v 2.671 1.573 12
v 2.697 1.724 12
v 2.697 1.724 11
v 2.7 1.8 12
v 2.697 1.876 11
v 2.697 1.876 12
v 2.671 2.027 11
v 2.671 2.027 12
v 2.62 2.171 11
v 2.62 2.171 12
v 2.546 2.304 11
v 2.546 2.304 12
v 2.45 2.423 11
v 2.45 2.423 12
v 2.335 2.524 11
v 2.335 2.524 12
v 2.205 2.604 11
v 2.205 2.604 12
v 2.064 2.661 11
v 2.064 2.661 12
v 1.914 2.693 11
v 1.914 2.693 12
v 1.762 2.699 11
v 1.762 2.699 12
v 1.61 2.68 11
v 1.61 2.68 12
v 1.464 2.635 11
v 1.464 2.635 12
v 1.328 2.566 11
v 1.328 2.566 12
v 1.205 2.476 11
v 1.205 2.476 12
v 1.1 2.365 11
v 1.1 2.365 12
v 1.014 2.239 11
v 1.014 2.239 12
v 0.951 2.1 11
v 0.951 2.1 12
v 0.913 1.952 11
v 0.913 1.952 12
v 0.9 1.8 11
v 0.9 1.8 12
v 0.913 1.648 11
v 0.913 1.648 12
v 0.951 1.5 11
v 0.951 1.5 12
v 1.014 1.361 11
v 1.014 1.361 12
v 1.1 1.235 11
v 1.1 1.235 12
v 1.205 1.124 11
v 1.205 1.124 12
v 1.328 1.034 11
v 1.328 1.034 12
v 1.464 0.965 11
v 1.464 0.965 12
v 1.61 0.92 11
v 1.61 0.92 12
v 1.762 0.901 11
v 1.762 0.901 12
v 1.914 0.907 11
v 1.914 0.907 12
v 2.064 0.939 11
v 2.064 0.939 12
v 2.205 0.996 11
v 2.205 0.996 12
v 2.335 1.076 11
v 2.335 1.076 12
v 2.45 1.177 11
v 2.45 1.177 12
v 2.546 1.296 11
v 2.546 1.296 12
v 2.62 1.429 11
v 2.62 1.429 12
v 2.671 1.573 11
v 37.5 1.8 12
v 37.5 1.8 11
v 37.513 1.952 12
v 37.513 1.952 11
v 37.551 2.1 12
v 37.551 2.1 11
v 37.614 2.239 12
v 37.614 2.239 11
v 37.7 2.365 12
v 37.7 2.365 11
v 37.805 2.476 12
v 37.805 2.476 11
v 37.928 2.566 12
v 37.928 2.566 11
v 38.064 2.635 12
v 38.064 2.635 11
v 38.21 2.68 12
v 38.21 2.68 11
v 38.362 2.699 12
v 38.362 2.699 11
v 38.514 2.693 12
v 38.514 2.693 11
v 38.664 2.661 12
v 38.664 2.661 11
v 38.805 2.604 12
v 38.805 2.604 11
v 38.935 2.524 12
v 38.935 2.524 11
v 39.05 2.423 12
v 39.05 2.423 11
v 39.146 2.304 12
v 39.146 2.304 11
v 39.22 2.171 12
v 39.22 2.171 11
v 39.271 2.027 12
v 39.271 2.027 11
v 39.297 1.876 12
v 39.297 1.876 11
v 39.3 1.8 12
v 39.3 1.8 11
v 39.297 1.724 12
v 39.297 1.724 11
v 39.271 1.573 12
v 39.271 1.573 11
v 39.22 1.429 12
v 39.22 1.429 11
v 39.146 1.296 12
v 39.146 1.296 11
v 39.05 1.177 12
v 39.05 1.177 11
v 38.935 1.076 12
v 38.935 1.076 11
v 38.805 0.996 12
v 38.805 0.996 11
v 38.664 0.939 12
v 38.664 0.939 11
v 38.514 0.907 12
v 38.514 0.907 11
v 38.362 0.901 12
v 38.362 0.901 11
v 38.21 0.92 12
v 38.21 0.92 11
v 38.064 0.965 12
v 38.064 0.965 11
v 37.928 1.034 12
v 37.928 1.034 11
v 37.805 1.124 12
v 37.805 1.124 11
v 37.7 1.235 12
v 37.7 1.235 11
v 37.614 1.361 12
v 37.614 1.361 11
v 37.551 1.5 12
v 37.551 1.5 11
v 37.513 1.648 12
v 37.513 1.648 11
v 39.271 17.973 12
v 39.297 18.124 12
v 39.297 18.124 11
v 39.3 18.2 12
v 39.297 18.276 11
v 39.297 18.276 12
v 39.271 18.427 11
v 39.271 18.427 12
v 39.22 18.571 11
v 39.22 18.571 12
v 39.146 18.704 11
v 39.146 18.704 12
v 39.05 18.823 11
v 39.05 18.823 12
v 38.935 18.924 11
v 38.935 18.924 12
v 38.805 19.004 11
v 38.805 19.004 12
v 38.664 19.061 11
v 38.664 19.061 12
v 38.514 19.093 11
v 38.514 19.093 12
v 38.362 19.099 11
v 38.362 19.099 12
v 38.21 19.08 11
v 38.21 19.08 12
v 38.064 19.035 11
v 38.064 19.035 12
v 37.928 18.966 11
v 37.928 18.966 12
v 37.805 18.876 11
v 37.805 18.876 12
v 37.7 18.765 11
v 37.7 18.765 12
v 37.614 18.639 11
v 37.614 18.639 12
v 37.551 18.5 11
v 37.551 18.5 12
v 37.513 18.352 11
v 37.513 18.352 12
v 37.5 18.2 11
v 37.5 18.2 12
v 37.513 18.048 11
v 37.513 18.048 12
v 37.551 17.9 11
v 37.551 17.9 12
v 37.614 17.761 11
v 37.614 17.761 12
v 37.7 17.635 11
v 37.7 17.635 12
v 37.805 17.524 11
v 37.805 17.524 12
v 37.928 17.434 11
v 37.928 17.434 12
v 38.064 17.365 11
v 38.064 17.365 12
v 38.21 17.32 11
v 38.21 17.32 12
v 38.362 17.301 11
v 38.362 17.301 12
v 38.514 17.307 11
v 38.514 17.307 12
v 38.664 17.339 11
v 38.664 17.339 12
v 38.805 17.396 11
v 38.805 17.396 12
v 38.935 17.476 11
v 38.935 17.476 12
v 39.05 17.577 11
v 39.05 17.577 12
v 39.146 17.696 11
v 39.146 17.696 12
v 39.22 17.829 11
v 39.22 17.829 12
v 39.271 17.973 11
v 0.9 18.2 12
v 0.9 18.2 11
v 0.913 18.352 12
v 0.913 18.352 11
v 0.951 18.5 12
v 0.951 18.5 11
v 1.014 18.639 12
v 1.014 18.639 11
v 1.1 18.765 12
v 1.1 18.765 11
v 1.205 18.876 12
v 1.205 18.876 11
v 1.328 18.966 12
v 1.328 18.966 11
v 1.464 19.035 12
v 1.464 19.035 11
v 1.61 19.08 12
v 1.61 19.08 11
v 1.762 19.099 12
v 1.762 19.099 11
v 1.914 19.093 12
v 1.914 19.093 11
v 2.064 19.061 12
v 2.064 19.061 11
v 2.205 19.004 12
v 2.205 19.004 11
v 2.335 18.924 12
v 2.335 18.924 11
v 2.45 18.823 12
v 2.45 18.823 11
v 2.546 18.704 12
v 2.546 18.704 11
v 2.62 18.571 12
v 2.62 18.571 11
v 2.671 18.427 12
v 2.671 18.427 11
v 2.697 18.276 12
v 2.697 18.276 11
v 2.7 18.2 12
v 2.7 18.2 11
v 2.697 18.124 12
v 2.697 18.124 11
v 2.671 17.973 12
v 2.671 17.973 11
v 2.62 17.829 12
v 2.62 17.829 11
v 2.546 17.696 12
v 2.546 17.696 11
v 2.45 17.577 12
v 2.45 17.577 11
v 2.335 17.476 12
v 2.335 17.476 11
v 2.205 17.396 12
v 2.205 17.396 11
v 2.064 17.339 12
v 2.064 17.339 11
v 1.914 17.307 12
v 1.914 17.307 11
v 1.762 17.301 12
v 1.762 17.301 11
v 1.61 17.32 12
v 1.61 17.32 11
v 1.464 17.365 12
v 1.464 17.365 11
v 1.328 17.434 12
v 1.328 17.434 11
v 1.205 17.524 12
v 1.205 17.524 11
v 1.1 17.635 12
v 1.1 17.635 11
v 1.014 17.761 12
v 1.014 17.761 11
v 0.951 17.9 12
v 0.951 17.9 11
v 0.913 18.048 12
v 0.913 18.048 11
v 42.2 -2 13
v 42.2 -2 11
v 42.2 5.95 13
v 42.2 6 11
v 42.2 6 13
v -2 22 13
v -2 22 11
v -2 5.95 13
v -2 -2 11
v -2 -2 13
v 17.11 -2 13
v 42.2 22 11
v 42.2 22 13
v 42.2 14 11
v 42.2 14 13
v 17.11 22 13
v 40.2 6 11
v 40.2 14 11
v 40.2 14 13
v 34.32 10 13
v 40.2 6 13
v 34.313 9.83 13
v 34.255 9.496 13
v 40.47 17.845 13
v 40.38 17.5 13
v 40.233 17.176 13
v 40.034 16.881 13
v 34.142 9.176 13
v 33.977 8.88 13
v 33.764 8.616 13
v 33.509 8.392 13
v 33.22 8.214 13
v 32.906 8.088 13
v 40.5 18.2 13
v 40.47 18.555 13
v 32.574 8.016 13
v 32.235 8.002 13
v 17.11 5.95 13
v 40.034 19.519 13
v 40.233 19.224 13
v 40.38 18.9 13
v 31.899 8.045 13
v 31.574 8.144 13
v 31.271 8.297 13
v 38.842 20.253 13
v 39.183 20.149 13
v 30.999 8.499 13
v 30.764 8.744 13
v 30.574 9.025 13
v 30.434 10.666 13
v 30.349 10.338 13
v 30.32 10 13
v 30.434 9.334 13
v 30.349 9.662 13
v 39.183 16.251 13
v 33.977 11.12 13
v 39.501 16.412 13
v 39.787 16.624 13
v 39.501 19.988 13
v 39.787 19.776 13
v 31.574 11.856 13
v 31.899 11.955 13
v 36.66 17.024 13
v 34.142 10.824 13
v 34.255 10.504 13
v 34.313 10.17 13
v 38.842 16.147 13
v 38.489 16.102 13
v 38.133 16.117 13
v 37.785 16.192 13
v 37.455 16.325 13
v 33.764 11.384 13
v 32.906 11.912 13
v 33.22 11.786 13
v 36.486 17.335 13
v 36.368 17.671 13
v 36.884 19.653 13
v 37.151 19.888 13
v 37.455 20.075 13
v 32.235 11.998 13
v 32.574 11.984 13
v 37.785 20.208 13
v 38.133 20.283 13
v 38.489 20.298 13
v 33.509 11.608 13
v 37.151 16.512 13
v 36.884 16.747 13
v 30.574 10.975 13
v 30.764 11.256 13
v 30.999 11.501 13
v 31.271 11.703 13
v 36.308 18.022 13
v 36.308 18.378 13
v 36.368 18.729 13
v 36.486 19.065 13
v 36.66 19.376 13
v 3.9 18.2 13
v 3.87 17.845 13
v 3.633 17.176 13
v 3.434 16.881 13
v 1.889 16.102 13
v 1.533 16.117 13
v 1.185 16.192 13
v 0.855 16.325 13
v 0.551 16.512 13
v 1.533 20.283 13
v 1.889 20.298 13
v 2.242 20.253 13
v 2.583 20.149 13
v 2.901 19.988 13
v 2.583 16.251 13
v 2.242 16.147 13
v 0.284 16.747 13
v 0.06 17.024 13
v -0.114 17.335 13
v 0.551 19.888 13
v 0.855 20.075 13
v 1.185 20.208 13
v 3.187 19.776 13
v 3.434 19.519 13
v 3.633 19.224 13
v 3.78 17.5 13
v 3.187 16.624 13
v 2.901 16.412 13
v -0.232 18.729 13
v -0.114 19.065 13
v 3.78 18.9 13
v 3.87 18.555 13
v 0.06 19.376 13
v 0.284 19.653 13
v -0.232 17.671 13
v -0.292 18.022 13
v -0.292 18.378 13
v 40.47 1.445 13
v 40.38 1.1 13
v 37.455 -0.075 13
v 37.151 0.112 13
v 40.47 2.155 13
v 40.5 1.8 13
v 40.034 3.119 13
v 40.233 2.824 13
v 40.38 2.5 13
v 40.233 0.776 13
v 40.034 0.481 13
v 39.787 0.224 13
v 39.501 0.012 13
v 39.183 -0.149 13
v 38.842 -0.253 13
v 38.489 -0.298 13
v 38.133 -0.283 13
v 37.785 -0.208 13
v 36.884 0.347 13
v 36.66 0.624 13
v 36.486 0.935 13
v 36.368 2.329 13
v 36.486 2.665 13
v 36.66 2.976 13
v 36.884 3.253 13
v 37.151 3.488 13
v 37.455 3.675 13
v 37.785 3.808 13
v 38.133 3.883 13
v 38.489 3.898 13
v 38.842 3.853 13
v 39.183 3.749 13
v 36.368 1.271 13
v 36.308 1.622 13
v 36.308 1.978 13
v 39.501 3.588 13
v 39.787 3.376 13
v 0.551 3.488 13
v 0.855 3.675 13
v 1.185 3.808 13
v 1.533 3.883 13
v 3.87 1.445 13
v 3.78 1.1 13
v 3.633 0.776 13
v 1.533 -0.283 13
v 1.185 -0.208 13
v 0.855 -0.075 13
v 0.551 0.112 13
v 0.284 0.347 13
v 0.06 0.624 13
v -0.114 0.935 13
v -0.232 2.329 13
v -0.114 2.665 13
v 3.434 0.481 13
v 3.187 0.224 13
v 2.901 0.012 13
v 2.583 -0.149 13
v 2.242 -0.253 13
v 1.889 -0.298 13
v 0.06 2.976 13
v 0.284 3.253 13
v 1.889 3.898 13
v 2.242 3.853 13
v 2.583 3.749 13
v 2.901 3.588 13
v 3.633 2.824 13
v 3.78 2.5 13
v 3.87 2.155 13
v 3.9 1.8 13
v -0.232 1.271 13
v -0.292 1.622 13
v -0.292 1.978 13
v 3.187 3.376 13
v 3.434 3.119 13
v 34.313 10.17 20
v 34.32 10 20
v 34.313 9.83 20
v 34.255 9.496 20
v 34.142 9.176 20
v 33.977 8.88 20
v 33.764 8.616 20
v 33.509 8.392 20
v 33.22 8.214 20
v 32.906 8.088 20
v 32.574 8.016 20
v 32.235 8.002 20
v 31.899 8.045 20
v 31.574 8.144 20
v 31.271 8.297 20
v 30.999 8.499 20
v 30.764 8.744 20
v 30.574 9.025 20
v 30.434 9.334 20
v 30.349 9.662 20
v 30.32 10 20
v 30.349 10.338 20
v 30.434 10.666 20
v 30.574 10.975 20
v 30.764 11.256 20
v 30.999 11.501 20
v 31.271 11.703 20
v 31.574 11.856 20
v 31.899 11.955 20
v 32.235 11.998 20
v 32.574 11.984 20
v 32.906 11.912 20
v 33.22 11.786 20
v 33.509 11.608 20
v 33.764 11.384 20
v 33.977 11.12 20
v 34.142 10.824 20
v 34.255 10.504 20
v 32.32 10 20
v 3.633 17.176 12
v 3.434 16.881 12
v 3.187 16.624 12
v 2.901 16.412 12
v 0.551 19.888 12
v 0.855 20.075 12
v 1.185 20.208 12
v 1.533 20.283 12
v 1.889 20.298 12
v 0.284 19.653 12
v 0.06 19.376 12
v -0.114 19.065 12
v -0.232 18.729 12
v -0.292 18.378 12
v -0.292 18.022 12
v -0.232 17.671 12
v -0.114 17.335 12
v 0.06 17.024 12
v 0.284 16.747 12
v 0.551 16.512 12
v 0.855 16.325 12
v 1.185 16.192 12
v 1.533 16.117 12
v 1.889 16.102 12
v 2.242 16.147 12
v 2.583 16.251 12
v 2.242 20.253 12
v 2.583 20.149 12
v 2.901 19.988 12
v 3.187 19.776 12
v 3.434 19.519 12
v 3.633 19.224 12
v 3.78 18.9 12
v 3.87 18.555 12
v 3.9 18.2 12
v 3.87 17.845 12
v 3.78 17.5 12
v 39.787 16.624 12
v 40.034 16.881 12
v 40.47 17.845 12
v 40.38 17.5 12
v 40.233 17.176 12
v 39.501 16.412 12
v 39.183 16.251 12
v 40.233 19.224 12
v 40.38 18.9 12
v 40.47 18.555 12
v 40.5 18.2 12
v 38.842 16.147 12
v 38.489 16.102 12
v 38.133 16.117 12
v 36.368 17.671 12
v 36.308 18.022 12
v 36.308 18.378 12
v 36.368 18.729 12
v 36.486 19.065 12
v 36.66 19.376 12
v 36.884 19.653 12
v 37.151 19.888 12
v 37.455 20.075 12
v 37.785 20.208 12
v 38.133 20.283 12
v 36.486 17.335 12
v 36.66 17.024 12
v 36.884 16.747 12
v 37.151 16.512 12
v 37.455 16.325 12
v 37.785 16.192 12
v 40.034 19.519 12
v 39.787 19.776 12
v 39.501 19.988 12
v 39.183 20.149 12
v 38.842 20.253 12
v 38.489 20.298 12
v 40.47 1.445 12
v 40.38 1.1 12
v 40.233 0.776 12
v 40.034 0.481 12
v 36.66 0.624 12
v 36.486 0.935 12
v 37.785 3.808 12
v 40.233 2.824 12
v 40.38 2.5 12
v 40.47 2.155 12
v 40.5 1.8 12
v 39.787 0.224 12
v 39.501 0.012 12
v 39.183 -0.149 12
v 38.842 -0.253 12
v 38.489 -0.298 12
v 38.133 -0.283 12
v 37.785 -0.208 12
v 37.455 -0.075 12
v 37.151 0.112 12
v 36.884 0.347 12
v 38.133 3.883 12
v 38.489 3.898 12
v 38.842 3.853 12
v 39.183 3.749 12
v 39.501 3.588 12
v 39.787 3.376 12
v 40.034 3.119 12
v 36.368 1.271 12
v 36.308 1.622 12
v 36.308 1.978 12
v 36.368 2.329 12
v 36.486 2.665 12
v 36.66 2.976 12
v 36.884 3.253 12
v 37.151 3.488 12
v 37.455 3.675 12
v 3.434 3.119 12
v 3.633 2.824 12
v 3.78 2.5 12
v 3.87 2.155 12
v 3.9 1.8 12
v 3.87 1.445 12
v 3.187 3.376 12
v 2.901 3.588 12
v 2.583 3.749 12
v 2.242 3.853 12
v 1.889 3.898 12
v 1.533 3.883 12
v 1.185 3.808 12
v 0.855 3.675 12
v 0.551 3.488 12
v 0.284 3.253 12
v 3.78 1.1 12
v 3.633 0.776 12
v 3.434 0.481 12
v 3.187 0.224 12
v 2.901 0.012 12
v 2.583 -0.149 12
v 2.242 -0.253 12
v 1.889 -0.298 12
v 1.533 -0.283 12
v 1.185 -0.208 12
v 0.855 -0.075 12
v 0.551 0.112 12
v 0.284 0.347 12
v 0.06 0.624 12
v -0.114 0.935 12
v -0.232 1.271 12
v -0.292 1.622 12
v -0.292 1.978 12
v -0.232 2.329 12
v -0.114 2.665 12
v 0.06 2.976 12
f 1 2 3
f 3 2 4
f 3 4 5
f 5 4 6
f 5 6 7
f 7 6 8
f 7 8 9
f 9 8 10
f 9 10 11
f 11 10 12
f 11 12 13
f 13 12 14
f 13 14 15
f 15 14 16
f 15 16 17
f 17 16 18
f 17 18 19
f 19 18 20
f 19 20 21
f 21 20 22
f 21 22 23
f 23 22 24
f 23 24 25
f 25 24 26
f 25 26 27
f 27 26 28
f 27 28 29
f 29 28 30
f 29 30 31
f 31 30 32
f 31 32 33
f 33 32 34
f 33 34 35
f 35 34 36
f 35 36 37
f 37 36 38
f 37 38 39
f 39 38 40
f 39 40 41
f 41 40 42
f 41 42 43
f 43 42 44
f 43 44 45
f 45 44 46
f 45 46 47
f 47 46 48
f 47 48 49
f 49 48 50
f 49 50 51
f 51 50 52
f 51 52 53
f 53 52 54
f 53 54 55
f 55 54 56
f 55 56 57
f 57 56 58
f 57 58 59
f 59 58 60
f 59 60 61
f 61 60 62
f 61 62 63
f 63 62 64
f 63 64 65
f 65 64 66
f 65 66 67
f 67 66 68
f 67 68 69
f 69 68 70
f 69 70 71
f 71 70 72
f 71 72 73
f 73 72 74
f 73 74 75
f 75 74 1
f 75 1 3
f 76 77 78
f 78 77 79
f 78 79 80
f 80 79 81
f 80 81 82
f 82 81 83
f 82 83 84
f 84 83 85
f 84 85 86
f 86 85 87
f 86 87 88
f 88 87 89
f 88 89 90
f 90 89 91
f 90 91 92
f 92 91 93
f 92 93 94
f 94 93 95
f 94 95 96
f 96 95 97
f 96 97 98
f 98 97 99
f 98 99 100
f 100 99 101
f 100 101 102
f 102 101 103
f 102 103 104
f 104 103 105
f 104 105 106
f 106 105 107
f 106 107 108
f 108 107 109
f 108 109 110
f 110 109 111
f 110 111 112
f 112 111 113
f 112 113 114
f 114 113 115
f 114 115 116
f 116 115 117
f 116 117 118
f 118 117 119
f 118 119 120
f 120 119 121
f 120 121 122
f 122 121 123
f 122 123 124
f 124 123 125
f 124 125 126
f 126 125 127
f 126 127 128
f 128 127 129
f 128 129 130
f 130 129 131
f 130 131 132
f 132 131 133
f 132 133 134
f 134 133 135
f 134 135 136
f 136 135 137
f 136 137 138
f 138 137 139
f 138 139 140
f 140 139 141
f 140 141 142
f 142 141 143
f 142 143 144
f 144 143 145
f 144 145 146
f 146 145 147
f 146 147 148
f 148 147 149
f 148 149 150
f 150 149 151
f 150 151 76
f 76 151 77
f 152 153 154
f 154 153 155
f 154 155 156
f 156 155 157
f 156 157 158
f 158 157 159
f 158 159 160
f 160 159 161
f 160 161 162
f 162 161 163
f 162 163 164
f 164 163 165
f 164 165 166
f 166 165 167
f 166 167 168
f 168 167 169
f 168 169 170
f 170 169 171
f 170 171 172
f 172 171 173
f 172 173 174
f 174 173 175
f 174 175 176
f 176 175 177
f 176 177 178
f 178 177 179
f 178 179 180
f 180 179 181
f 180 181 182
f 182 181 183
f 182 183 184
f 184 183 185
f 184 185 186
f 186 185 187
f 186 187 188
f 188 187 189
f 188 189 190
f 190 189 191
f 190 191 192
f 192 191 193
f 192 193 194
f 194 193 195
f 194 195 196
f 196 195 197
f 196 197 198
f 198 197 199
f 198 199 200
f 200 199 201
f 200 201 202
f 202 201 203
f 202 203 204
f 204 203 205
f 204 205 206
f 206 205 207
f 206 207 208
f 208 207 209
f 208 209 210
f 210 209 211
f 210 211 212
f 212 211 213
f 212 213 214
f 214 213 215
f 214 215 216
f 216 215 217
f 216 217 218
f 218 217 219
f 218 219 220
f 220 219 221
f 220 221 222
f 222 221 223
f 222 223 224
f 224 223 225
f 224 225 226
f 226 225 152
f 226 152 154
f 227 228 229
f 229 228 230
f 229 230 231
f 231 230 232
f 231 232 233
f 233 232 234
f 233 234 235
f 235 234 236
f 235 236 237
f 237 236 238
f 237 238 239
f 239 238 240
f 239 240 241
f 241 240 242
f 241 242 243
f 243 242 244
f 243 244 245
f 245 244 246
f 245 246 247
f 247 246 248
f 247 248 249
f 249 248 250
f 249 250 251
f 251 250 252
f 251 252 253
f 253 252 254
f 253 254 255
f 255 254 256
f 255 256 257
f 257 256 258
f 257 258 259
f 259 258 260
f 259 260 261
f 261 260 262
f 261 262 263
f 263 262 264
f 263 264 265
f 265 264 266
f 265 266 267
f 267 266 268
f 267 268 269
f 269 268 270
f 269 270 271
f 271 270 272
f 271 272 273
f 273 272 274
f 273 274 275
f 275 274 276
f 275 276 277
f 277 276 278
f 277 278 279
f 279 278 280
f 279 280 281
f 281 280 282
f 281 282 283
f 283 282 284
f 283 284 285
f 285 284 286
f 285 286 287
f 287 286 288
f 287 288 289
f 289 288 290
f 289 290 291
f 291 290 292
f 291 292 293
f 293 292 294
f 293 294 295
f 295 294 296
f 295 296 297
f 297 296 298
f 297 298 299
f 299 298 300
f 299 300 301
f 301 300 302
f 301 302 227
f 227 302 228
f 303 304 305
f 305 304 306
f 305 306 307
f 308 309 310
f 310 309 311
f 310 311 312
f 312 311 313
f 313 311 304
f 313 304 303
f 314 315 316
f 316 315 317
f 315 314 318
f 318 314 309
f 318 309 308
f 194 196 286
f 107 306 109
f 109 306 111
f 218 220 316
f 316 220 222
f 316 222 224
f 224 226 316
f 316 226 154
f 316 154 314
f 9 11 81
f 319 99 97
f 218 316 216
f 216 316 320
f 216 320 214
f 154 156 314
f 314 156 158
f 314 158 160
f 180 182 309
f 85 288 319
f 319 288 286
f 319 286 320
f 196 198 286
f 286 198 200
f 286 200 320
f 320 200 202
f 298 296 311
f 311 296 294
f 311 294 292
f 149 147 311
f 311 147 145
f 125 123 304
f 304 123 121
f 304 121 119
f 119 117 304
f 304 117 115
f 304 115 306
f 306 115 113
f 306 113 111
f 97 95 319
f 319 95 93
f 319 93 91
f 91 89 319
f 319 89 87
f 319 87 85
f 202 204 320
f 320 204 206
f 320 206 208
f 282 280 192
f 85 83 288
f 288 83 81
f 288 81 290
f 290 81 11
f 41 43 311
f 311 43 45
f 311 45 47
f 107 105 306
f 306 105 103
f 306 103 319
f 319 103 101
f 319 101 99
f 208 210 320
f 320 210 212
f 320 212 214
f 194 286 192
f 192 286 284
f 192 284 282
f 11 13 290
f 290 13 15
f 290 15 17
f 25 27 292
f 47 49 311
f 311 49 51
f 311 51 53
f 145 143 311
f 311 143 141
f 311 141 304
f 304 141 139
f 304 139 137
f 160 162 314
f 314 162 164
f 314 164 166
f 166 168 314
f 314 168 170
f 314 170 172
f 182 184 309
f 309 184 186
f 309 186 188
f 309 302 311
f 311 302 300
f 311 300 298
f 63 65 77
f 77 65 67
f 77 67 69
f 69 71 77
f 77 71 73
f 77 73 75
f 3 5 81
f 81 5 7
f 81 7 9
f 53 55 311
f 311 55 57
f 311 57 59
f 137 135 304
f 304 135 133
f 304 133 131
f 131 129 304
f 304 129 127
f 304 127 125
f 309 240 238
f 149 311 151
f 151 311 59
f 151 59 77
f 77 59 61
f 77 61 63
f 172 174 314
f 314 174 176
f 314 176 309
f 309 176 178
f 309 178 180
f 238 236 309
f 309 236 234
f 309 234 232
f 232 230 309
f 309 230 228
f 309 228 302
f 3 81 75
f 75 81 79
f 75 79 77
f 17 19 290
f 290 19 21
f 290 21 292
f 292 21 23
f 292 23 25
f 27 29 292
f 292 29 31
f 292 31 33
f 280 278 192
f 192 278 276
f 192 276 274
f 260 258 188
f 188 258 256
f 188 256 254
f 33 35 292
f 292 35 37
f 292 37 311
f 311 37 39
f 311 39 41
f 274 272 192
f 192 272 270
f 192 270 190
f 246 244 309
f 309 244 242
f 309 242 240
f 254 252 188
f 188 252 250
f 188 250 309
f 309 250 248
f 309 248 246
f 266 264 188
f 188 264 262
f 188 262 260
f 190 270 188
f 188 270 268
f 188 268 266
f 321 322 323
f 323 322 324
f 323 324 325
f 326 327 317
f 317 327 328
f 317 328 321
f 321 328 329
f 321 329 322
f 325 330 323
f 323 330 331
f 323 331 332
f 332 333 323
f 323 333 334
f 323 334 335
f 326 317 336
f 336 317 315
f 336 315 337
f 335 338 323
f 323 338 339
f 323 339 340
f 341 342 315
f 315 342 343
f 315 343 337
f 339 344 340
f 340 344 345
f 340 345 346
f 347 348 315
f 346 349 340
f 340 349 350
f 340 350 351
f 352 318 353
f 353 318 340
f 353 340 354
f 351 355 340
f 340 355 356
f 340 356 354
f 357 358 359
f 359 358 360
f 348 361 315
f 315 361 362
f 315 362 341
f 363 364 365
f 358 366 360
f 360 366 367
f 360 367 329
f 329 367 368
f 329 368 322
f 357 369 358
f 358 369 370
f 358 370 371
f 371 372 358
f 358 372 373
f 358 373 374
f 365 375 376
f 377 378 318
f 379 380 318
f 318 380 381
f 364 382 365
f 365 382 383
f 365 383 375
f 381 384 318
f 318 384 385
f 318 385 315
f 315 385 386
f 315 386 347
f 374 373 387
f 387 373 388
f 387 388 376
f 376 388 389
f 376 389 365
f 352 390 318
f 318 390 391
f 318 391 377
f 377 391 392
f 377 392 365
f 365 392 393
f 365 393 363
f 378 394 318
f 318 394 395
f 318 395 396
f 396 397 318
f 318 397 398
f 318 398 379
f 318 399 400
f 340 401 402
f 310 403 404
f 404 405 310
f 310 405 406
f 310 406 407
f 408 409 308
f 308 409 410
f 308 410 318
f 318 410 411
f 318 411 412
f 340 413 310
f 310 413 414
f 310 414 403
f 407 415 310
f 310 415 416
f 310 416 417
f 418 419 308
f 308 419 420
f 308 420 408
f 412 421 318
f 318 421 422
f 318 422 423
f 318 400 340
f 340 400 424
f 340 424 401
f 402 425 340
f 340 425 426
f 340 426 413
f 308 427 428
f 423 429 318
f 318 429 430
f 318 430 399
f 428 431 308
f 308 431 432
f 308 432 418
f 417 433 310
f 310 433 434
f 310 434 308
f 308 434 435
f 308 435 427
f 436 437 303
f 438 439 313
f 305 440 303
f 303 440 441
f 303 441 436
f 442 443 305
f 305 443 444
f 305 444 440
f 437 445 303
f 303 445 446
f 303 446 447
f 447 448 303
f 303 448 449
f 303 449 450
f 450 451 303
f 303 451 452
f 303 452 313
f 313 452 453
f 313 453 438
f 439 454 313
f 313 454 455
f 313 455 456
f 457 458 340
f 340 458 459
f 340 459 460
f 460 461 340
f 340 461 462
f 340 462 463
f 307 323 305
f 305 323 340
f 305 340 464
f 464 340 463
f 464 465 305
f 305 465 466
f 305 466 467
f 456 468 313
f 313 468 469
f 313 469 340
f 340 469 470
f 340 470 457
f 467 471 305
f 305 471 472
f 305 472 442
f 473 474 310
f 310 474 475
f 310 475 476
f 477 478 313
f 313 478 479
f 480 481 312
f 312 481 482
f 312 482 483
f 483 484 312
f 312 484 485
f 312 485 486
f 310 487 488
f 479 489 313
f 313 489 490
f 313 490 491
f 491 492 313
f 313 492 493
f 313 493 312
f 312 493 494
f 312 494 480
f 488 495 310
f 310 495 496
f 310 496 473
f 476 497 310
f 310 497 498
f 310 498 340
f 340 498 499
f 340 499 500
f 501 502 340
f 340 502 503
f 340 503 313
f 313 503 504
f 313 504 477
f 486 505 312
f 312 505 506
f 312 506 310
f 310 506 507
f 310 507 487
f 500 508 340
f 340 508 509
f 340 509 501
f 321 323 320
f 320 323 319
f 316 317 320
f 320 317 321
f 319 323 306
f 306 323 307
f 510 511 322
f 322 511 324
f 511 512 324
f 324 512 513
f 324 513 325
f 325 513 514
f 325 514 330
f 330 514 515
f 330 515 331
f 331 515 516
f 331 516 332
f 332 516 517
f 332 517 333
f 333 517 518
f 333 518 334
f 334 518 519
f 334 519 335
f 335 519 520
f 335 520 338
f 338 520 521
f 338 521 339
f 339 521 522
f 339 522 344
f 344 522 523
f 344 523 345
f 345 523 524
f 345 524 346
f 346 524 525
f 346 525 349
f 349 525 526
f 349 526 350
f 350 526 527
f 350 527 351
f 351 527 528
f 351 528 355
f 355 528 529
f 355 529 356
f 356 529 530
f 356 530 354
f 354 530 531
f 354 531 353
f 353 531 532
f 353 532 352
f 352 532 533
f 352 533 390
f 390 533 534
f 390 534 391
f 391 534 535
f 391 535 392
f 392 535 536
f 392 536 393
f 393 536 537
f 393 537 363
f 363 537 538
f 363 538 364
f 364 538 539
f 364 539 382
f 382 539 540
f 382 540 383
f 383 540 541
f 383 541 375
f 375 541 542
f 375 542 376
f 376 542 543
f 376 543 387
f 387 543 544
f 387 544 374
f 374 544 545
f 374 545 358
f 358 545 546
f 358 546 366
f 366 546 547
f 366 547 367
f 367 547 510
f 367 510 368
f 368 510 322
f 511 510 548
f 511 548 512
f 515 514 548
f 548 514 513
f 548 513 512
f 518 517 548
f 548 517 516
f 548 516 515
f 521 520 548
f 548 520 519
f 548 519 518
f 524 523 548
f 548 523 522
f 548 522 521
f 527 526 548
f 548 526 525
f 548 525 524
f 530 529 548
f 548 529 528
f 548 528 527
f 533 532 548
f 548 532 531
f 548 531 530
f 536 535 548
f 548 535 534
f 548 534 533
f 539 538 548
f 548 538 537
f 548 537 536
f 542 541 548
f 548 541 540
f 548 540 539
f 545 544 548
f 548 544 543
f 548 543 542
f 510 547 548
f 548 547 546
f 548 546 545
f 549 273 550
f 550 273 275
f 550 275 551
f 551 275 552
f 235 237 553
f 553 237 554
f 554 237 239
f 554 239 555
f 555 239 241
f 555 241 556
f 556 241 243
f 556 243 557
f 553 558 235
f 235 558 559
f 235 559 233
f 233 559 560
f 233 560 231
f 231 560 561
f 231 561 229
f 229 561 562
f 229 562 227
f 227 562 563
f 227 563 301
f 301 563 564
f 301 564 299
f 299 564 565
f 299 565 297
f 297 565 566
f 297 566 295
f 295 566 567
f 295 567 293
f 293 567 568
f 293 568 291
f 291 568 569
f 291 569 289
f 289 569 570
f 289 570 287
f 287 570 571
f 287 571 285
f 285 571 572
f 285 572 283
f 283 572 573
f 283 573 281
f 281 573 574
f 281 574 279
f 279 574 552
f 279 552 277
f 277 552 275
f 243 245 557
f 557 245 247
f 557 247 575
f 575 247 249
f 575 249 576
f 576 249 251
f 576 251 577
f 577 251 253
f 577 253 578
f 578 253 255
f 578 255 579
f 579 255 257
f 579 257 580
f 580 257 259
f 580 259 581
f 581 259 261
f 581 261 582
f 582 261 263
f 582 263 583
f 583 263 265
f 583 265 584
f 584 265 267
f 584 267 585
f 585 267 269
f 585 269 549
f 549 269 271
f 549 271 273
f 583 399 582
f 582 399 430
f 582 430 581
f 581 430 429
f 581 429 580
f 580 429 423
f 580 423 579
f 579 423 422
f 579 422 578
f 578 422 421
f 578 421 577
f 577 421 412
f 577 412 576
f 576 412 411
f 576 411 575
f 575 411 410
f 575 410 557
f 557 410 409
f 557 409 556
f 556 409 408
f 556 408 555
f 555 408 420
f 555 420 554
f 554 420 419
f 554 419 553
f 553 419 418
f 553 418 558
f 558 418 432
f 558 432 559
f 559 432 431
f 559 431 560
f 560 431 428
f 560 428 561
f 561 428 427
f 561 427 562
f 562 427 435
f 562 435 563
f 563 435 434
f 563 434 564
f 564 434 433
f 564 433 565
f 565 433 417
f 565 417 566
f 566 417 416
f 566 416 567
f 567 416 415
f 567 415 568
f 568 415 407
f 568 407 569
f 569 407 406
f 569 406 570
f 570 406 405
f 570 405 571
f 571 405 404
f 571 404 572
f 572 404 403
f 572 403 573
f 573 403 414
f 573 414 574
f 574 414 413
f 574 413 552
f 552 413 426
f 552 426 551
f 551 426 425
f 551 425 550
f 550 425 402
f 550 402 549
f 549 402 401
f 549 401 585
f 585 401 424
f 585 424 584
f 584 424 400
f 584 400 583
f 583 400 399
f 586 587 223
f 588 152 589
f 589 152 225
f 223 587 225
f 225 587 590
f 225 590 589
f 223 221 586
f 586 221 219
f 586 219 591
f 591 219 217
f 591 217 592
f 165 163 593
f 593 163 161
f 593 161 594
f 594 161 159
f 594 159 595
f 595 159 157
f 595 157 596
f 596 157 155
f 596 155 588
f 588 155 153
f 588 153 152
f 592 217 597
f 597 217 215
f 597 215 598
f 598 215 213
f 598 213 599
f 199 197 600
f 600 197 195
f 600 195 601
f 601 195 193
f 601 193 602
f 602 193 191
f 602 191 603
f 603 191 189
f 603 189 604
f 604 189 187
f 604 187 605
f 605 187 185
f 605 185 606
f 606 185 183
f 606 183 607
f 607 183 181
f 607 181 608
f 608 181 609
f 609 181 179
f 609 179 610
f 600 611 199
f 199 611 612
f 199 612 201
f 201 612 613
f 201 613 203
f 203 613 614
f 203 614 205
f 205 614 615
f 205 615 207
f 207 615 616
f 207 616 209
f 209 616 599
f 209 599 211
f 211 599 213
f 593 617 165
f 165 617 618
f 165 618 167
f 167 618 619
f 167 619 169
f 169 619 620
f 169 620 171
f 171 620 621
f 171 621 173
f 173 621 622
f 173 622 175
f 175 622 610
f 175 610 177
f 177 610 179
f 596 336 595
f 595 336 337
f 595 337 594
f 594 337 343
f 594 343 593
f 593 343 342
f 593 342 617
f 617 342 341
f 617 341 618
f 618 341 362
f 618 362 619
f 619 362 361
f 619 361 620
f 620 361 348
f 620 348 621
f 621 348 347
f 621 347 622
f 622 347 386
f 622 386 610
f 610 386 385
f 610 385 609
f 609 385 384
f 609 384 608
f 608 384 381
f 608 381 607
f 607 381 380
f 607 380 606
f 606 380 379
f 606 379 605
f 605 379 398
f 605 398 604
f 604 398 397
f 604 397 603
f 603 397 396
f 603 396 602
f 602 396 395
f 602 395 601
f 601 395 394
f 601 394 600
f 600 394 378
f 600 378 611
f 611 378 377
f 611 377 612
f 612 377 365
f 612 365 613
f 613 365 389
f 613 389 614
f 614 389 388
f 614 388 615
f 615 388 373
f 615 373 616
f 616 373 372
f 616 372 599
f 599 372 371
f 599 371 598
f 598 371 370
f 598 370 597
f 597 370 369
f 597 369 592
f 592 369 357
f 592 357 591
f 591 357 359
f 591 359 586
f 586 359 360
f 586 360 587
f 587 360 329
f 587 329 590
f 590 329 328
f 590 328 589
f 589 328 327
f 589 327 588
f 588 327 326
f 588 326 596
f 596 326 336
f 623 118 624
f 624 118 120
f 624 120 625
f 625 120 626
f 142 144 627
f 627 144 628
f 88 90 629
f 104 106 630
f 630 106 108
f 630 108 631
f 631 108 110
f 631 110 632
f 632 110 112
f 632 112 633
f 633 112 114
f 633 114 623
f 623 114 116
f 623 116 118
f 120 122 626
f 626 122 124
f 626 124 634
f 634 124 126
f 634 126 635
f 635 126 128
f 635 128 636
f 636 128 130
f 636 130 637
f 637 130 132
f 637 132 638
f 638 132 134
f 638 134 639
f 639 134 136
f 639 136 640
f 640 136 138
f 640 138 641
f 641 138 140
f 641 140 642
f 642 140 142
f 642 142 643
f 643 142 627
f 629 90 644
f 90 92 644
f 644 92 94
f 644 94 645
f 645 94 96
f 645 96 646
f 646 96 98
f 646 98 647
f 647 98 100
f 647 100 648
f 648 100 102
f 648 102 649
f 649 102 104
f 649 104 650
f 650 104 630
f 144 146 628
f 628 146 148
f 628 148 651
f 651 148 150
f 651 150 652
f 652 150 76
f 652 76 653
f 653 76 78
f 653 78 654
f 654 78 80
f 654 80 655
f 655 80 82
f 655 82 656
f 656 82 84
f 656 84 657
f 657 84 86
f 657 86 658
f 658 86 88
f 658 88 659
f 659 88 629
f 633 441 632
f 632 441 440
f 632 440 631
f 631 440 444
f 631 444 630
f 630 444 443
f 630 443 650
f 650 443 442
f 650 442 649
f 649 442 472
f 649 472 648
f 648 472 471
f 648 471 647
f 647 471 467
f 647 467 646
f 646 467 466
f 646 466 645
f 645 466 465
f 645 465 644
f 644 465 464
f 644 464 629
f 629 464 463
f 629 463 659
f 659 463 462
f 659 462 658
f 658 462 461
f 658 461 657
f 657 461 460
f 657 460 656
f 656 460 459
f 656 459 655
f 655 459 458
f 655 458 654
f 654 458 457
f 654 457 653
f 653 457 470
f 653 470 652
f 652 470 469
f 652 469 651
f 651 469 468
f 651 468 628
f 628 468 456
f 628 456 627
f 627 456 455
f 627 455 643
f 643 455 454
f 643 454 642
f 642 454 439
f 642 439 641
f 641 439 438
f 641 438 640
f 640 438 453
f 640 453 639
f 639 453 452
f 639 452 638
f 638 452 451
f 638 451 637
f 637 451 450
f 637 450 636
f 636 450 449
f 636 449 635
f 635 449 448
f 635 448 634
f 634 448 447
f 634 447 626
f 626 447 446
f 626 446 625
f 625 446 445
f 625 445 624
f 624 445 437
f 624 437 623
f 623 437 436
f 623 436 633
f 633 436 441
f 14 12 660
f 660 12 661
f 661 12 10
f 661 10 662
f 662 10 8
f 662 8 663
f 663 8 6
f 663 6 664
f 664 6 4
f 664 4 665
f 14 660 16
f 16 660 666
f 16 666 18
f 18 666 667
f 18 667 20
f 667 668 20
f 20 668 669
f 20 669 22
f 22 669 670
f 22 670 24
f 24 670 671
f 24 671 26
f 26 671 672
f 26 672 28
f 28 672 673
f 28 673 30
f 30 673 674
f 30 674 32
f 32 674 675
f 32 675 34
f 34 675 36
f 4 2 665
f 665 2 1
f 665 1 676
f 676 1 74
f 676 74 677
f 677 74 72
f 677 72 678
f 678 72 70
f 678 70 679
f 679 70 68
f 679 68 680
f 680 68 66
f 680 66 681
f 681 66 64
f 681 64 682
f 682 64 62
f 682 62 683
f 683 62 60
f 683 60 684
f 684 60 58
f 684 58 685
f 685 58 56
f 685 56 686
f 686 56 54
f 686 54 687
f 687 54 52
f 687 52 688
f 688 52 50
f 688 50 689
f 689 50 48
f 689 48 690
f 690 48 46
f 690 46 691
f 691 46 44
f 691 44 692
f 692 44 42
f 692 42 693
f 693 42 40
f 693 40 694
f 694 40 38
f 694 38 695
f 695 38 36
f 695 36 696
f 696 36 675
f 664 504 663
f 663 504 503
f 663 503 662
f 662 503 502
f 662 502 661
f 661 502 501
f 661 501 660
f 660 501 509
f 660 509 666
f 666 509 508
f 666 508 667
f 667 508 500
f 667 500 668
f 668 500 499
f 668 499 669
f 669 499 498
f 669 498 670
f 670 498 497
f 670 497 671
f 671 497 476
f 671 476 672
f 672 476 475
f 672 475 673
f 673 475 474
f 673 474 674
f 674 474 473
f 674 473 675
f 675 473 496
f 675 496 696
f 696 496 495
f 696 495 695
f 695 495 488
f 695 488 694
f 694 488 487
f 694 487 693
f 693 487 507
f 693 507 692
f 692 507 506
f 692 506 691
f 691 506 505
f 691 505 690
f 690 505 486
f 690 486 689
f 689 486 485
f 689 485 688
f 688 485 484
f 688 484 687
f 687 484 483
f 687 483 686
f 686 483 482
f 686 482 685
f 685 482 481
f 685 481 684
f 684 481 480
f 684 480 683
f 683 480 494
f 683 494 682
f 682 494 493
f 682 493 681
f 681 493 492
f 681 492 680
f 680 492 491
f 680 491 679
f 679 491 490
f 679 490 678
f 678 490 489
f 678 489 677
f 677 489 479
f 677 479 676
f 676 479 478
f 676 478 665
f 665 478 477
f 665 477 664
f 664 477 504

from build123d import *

# Parameters (mm, degrees)
SKETCH1_W           = 44.2
SKETCH1_H           = 24
SKETCH1_W_2         = 40.2
SKETCH1_H_2         = 20
BOSS_EXTRUDE1_DEPTH = 11
SKETCH2_W           = 44.2
SKETCH2_H           = 24
BOSS_EXTRUDE2_DEPTH = 2
SKETCH3_W           = 11
SKETCH3_H           = 8
CUT_EXTRUDE1_DEPTH  = 2
SKETCH4_R           = 2
BOSS_EXTRUDE3_DEPTH = 7
SKETCH5_R           = 0.9
CUT_EXTRUDE2_DEPTH  = 10
SKETCH6_W           = 44.2
SKETCH6_H           = 11
CUT_EXTRUDE3_DEPTH  = 100
SKETCH7_R           = 2.1
CUT_EXTRUDE4_DEPTH  = 1


with BuildPart() as part:
    # Sketch1 → Boss-Extrude1 (new body)
    with BuildSketch(Plane.XY):
        with Locations((20.1, 10)):
            Rectangle(SKETCH1_W, SKETCH1_H)
        with Locations((20.1, 10)):
            Rectangle(SKETCH1_W_2, SKETCH1_H_2, mode=Mode.SUBTRACT)
    extrude(amount=BOSS_EXTRUDE1_DEPTH)

    # Sketch2 → Boss-Extrude2 (add)
    with BuildSketch(Plane.XY.offset(11)):
        with Locations((20.1, 10)):
            Rectangle(SKETCH2_W, SKETCH2_H)
    extrude(amount=BOSS_EXTRUDE2_DEPTH)

    # Sketch3 → Cut-Extrude1 (cut)
    with BuildSketch(Plane(origin=(42.2, 0, 0), x_dir=(0, 0, -1), z_dir=(1, 0, 0))):
        with Locations((-7.5, 10)):
            Rectangle(SKETCH3_W, SKETCH3_H)
    extrude(amount=-CUT_EXTRUDE1_DEPTH, mode=Mode.SUBTRACT)

    # Sketch4 → Boss-Extrude3 (add)
    with BuildSketch(Plane.XY.offset(13)):
        with Locations((32.32, 10)):
            Circle(SKETCH4_R)
    extrude(amount=BOSS_EXTRUDE3_DEPTH)

    # Sketch5 → Cut-Extrude2 (cut)
    with BuildSketch(Plane(origin=(0, 0, 11), x_dir=(-1, 0, 0), z_dir=(0, 0, -1))):
        with Locations((-38.4, 18.2)):
            Circle(SKETCH5_R)
        with Locations(Location((-1.8, 18.2, 0), (0, 0, 180))):
            Circle(SKETCH5_R)
        with Locations((-1.8, 1.8)):
            Circle(SKETCH5_R)
        with Locations(Location((-38.4, 1.8, 0), (0, 0, 180))):
            Circle(SKETCH5_R)
    extrude(amount=-CUT_EXTRUDE2_DEPTH, mode=Mode.SUBTRACT)

    # Sketch6 → Cut-Extrude3 (cut)
    with BuildSketch(Plane(origin=(0, 22, 0), x_dir=(1, 0, 0), z_dir=(0, 1, 0))):
        with Locations((20.1, -5.5)):
            Rectangle(SKETCH6_W, SKETCH6_H)
    extrude(amount=-CUT_EXTRUDE3_DEPTH, mode=Mode.SUBTRACT)

    # Sketch7 → Cut-Extrude4 (cut)
    with BuildSketch(Plane.XY.offset(13)):
        with Locations((1.8, 18.2)):
            Circle(SKETCH7_R)
        with Locations((38.4, 18.2)):
            Circle(SKETCH7_R)
        with Locations((38.4, 1.8)):
            Circle(SKETCH7_R)
        with Locations((1.8, 1.8)):
            Circle(SKETCH7_R)
    extrude(amount=-CUT_EXTRUDE4_DEPTH, mode=Mode.SUBTRACT)


solid = part.part
